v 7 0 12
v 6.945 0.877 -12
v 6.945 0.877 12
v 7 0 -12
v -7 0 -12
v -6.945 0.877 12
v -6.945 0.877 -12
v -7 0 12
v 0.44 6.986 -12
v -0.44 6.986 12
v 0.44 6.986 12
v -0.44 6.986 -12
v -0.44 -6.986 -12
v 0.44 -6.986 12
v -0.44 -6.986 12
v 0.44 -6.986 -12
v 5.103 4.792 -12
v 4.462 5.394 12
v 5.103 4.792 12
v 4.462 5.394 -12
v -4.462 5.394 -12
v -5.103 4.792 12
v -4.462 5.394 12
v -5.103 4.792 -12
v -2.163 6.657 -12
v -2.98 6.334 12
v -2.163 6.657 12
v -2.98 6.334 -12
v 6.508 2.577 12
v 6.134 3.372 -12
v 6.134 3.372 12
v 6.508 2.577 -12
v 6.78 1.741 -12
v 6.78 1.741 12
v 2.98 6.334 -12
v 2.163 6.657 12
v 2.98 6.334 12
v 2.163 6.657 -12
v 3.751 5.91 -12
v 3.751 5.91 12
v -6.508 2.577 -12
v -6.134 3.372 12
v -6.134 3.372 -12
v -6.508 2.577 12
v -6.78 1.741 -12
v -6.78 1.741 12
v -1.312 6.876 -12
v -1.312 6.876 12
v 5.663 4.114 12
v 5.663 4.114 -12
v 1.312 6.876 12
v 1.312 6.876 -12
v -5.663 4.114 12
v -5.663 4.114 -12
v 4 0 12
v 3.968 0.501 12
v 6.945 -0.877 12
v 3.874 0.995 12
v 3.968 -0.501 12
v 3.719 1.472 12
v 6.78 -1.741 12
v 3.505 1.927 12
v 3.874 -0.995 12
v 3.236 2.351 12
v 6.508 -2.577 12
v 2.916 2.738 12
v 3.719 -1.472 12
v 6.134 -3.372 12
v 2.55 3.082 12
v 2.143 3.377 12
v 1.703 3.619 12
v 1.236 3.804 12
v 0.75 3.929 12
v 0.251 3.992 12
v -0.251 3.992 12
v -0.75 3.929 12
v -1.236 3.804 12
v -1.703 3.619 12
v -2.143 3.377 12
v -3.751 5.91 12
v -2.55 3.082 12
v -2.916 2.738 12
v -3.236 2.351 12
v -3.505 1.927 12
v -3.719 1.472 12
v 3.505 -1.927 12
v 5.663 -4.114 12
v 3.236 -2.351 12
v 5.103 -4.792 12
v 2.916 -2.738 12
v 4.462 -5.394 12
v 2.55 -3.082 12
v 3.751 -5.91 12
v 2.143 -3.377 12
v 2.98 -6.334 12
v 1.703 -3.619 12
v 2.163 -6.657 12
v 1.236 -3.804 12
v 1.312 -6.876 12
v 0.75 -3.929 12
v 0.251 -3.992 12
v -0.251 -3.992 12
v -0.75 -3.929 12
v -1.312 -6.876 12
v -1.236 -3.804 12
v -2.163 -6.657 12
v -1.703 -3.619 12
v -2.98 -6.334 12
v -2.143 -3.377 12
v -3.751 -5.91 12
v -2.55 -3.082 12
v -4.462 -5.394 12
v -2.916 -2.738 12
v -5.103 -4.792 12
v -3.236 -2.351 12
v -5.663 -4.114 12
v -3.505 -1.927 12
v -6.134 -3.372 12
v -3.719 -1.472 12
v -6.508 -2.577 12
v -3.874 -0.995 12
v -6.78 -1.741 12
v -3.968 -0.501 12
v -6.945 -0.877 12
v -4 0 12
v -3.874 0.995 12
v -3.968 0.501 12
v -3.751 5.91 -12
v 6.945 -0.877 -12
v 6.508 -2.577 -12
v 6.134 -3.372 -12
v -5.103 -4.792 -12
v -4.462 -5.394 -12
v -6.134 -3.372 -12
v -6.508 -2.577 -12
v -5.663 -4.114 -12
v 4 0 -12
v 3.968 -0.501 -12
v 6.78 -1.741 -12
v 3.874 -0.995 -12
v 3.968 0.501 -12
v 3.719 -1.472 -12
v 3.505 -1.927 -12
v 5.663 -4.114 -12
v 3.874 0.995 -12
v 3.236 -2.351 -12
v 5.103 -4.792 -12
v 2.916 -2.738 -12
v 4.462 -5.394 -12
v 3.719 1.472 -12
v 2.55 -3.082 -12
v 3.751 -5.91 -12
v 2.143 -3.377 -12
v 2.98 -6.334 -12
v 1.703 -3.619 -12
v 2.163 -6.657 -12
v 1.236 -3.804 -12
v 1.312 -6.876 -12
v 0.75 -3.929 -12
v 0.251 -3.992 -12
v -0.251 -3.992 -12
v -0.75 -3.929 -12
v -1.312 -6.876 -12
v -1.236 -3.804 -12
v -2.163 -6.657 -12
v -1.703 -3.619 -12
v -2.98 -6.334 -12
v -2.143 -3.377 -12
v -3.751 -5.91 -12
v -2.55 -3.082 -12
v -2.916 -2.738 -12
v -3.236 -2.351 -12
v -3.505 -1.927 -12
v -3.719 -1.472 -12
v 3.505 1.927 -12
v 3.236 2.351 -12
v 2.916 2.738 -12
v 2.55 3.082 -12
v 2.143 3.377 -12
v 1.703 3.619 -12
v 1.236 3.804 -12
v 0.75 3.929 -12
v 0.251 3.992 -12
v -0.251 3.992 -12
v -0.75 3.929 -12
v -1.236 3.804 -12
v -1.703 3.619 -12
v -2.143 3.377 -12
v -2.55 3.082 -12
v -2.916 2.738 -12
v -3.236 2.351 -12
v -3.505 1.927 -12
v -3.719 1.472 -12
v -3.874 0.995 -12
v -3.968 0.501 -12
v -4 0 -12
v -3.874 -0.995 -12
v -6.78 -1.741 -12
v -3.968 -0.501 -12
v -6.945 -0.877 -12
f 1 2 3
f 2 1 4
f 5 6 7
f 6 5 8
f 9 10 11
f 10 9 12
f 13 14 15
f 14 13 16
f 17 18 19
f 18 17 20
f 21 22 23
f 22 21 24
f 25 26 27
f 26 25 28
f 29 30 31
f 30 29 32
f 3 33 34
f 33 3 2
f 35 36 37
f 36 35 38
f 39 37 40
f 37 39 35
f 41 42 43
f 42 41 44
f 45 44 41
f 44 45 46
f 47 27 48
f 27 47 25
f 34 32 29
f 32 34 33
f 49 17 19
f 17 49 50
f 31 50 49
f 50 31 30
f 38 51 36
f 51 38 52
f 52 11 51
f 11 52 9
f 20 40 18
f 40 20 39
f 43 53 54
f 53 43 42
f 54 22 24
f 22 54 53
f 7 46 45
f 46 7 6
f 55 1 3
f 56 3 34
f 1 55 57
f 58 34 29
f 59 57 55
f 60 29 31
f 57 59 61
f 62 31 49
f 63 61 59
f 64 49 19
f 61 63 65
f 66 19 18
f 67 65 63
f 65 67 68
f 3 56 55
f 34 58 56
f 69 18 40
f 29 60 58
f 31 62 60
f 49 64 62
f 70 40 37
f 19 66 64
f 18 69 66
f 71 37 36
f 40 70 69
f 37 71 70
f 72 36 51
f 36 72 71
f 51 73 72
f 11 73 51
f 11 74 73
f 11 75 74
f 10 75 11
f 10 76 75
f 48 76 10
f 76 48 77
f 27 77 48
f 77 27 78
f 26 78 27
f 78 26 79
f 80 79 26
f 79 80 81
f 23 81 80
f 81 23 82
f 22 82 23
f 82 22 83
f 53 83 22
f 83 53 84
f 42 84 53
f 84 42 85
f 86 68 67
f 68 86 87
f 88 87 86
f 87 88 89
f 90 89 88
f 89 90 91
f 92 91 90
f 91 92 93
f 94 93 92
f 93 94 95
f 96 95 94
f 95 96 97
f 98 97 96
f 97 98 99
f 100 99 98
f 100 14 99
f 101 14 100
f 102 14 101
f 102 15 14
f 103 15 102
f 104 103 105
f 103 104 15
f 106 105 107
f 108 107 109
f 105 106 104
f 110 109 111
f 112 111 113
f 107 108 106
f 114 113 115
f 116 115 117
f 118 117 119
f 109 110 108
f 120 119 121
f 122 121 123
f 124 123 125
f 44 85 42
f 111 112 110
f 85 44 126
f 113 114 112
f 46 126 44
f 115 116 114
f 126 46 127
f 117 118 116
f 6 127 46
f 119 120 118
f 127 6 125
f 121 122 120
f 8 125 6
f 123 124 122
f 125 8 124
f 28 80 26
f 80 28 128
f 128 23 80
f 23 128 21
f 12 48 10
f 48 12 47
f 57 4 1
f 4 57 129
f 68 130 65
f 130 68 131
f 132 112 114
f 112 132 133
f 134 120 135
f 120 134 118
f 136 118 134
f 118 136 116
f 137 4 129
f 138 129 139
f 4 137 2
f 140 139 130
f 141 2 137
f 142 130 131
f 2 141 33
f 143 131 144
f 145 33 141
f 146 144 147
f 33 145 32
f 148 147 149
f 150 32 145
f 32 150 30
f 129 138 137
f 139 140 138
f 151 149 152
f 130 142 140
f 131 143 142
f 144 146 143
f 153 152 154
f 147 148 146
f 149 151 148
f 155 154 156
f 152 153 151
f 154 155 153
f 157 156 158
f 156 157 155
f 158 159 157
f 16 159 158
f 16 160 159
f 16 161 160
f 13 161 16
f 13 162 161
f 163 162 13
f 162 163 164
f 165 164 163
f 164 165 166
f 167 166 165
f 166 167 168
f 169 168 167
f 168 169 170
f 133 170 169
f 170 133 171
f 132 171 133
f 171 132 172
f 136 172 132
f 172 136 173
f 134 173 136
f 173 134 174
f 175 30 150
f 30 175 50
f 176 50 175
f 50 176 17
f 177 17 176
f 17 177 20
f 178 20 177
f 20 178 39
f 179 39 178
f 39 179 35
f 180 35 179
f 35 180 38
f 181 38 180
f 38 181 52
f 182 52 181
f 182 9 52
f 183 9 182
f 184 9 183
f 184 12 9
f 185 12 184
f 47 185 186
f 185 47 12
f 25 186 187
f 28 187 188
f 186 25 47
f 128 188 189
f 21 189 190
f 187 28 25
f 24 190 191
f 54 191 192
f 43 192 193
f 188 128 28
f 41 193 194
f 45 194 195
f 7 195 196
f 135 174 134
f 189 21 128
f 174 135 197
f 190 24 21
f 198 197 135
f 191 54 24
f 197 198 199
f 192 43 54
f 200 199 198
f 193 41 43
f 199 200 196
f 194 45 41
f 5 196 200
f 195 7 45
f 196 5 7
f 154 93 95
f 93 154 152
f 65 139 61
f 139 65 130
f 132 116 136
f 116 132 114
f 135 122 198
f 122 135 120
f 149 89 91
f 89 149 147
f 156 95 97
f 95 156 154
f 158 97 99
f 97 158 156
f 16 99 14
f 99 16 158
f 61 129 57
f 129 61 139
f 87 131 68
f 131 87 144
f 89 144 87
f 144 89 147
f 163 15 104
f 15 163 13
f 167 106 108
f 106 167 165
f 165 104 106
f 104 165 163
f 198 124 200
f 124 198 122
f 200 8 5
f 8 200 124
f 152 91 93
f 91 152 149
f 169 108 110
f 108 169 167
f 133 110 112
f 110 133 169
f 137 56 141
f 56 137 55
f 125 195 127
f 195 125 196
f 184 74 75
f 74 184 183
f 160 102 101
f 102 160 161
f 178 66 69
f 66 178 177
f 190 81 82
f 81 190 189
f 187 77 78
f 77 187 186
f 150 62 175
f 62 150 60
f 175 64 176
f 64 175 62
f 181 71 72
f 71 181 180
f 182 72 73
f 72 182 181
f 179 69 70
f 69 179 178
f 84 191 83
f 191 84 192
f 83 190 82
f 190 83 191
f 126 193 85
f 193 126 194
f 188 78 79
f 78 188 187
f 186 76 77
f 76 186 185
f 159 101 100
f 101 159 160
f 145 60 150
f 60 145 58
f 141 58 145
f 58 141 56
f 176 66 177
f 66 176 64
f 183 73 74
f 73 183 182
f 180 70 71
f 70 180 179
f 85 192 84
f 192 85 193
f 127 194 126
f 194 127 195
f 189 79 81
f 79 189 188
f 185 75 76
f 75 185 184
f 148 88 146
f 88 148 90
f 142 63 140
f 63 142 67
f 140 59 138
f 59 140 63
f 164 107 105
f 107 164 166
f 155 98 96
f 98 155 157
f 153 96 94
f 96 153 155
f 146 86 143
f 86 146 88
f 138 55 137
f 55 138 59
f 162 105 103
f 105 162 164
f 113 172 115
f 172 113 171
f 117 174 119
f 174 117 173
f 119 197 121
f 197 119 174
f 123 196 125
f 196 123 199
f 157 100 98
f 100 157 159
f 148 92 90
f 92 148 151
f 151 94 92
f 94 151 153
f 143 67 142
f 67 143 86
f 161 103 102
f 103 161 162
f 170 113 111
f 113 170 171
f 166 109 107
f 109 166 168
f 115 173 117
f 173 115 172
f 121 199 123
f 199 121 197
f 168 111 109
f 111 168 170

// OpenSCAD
$fn = 50;


difference() {
	union() {
		translate(v = [0, 0, -12.0000000000]) {
			cylinder(h = 24, r = 7.0000000000);
		}
	}
	union() {
		translate(v = [0, 0, -100.0000000000]) {
			cylinder(h = 200, r = 4);
		}
	}
}
